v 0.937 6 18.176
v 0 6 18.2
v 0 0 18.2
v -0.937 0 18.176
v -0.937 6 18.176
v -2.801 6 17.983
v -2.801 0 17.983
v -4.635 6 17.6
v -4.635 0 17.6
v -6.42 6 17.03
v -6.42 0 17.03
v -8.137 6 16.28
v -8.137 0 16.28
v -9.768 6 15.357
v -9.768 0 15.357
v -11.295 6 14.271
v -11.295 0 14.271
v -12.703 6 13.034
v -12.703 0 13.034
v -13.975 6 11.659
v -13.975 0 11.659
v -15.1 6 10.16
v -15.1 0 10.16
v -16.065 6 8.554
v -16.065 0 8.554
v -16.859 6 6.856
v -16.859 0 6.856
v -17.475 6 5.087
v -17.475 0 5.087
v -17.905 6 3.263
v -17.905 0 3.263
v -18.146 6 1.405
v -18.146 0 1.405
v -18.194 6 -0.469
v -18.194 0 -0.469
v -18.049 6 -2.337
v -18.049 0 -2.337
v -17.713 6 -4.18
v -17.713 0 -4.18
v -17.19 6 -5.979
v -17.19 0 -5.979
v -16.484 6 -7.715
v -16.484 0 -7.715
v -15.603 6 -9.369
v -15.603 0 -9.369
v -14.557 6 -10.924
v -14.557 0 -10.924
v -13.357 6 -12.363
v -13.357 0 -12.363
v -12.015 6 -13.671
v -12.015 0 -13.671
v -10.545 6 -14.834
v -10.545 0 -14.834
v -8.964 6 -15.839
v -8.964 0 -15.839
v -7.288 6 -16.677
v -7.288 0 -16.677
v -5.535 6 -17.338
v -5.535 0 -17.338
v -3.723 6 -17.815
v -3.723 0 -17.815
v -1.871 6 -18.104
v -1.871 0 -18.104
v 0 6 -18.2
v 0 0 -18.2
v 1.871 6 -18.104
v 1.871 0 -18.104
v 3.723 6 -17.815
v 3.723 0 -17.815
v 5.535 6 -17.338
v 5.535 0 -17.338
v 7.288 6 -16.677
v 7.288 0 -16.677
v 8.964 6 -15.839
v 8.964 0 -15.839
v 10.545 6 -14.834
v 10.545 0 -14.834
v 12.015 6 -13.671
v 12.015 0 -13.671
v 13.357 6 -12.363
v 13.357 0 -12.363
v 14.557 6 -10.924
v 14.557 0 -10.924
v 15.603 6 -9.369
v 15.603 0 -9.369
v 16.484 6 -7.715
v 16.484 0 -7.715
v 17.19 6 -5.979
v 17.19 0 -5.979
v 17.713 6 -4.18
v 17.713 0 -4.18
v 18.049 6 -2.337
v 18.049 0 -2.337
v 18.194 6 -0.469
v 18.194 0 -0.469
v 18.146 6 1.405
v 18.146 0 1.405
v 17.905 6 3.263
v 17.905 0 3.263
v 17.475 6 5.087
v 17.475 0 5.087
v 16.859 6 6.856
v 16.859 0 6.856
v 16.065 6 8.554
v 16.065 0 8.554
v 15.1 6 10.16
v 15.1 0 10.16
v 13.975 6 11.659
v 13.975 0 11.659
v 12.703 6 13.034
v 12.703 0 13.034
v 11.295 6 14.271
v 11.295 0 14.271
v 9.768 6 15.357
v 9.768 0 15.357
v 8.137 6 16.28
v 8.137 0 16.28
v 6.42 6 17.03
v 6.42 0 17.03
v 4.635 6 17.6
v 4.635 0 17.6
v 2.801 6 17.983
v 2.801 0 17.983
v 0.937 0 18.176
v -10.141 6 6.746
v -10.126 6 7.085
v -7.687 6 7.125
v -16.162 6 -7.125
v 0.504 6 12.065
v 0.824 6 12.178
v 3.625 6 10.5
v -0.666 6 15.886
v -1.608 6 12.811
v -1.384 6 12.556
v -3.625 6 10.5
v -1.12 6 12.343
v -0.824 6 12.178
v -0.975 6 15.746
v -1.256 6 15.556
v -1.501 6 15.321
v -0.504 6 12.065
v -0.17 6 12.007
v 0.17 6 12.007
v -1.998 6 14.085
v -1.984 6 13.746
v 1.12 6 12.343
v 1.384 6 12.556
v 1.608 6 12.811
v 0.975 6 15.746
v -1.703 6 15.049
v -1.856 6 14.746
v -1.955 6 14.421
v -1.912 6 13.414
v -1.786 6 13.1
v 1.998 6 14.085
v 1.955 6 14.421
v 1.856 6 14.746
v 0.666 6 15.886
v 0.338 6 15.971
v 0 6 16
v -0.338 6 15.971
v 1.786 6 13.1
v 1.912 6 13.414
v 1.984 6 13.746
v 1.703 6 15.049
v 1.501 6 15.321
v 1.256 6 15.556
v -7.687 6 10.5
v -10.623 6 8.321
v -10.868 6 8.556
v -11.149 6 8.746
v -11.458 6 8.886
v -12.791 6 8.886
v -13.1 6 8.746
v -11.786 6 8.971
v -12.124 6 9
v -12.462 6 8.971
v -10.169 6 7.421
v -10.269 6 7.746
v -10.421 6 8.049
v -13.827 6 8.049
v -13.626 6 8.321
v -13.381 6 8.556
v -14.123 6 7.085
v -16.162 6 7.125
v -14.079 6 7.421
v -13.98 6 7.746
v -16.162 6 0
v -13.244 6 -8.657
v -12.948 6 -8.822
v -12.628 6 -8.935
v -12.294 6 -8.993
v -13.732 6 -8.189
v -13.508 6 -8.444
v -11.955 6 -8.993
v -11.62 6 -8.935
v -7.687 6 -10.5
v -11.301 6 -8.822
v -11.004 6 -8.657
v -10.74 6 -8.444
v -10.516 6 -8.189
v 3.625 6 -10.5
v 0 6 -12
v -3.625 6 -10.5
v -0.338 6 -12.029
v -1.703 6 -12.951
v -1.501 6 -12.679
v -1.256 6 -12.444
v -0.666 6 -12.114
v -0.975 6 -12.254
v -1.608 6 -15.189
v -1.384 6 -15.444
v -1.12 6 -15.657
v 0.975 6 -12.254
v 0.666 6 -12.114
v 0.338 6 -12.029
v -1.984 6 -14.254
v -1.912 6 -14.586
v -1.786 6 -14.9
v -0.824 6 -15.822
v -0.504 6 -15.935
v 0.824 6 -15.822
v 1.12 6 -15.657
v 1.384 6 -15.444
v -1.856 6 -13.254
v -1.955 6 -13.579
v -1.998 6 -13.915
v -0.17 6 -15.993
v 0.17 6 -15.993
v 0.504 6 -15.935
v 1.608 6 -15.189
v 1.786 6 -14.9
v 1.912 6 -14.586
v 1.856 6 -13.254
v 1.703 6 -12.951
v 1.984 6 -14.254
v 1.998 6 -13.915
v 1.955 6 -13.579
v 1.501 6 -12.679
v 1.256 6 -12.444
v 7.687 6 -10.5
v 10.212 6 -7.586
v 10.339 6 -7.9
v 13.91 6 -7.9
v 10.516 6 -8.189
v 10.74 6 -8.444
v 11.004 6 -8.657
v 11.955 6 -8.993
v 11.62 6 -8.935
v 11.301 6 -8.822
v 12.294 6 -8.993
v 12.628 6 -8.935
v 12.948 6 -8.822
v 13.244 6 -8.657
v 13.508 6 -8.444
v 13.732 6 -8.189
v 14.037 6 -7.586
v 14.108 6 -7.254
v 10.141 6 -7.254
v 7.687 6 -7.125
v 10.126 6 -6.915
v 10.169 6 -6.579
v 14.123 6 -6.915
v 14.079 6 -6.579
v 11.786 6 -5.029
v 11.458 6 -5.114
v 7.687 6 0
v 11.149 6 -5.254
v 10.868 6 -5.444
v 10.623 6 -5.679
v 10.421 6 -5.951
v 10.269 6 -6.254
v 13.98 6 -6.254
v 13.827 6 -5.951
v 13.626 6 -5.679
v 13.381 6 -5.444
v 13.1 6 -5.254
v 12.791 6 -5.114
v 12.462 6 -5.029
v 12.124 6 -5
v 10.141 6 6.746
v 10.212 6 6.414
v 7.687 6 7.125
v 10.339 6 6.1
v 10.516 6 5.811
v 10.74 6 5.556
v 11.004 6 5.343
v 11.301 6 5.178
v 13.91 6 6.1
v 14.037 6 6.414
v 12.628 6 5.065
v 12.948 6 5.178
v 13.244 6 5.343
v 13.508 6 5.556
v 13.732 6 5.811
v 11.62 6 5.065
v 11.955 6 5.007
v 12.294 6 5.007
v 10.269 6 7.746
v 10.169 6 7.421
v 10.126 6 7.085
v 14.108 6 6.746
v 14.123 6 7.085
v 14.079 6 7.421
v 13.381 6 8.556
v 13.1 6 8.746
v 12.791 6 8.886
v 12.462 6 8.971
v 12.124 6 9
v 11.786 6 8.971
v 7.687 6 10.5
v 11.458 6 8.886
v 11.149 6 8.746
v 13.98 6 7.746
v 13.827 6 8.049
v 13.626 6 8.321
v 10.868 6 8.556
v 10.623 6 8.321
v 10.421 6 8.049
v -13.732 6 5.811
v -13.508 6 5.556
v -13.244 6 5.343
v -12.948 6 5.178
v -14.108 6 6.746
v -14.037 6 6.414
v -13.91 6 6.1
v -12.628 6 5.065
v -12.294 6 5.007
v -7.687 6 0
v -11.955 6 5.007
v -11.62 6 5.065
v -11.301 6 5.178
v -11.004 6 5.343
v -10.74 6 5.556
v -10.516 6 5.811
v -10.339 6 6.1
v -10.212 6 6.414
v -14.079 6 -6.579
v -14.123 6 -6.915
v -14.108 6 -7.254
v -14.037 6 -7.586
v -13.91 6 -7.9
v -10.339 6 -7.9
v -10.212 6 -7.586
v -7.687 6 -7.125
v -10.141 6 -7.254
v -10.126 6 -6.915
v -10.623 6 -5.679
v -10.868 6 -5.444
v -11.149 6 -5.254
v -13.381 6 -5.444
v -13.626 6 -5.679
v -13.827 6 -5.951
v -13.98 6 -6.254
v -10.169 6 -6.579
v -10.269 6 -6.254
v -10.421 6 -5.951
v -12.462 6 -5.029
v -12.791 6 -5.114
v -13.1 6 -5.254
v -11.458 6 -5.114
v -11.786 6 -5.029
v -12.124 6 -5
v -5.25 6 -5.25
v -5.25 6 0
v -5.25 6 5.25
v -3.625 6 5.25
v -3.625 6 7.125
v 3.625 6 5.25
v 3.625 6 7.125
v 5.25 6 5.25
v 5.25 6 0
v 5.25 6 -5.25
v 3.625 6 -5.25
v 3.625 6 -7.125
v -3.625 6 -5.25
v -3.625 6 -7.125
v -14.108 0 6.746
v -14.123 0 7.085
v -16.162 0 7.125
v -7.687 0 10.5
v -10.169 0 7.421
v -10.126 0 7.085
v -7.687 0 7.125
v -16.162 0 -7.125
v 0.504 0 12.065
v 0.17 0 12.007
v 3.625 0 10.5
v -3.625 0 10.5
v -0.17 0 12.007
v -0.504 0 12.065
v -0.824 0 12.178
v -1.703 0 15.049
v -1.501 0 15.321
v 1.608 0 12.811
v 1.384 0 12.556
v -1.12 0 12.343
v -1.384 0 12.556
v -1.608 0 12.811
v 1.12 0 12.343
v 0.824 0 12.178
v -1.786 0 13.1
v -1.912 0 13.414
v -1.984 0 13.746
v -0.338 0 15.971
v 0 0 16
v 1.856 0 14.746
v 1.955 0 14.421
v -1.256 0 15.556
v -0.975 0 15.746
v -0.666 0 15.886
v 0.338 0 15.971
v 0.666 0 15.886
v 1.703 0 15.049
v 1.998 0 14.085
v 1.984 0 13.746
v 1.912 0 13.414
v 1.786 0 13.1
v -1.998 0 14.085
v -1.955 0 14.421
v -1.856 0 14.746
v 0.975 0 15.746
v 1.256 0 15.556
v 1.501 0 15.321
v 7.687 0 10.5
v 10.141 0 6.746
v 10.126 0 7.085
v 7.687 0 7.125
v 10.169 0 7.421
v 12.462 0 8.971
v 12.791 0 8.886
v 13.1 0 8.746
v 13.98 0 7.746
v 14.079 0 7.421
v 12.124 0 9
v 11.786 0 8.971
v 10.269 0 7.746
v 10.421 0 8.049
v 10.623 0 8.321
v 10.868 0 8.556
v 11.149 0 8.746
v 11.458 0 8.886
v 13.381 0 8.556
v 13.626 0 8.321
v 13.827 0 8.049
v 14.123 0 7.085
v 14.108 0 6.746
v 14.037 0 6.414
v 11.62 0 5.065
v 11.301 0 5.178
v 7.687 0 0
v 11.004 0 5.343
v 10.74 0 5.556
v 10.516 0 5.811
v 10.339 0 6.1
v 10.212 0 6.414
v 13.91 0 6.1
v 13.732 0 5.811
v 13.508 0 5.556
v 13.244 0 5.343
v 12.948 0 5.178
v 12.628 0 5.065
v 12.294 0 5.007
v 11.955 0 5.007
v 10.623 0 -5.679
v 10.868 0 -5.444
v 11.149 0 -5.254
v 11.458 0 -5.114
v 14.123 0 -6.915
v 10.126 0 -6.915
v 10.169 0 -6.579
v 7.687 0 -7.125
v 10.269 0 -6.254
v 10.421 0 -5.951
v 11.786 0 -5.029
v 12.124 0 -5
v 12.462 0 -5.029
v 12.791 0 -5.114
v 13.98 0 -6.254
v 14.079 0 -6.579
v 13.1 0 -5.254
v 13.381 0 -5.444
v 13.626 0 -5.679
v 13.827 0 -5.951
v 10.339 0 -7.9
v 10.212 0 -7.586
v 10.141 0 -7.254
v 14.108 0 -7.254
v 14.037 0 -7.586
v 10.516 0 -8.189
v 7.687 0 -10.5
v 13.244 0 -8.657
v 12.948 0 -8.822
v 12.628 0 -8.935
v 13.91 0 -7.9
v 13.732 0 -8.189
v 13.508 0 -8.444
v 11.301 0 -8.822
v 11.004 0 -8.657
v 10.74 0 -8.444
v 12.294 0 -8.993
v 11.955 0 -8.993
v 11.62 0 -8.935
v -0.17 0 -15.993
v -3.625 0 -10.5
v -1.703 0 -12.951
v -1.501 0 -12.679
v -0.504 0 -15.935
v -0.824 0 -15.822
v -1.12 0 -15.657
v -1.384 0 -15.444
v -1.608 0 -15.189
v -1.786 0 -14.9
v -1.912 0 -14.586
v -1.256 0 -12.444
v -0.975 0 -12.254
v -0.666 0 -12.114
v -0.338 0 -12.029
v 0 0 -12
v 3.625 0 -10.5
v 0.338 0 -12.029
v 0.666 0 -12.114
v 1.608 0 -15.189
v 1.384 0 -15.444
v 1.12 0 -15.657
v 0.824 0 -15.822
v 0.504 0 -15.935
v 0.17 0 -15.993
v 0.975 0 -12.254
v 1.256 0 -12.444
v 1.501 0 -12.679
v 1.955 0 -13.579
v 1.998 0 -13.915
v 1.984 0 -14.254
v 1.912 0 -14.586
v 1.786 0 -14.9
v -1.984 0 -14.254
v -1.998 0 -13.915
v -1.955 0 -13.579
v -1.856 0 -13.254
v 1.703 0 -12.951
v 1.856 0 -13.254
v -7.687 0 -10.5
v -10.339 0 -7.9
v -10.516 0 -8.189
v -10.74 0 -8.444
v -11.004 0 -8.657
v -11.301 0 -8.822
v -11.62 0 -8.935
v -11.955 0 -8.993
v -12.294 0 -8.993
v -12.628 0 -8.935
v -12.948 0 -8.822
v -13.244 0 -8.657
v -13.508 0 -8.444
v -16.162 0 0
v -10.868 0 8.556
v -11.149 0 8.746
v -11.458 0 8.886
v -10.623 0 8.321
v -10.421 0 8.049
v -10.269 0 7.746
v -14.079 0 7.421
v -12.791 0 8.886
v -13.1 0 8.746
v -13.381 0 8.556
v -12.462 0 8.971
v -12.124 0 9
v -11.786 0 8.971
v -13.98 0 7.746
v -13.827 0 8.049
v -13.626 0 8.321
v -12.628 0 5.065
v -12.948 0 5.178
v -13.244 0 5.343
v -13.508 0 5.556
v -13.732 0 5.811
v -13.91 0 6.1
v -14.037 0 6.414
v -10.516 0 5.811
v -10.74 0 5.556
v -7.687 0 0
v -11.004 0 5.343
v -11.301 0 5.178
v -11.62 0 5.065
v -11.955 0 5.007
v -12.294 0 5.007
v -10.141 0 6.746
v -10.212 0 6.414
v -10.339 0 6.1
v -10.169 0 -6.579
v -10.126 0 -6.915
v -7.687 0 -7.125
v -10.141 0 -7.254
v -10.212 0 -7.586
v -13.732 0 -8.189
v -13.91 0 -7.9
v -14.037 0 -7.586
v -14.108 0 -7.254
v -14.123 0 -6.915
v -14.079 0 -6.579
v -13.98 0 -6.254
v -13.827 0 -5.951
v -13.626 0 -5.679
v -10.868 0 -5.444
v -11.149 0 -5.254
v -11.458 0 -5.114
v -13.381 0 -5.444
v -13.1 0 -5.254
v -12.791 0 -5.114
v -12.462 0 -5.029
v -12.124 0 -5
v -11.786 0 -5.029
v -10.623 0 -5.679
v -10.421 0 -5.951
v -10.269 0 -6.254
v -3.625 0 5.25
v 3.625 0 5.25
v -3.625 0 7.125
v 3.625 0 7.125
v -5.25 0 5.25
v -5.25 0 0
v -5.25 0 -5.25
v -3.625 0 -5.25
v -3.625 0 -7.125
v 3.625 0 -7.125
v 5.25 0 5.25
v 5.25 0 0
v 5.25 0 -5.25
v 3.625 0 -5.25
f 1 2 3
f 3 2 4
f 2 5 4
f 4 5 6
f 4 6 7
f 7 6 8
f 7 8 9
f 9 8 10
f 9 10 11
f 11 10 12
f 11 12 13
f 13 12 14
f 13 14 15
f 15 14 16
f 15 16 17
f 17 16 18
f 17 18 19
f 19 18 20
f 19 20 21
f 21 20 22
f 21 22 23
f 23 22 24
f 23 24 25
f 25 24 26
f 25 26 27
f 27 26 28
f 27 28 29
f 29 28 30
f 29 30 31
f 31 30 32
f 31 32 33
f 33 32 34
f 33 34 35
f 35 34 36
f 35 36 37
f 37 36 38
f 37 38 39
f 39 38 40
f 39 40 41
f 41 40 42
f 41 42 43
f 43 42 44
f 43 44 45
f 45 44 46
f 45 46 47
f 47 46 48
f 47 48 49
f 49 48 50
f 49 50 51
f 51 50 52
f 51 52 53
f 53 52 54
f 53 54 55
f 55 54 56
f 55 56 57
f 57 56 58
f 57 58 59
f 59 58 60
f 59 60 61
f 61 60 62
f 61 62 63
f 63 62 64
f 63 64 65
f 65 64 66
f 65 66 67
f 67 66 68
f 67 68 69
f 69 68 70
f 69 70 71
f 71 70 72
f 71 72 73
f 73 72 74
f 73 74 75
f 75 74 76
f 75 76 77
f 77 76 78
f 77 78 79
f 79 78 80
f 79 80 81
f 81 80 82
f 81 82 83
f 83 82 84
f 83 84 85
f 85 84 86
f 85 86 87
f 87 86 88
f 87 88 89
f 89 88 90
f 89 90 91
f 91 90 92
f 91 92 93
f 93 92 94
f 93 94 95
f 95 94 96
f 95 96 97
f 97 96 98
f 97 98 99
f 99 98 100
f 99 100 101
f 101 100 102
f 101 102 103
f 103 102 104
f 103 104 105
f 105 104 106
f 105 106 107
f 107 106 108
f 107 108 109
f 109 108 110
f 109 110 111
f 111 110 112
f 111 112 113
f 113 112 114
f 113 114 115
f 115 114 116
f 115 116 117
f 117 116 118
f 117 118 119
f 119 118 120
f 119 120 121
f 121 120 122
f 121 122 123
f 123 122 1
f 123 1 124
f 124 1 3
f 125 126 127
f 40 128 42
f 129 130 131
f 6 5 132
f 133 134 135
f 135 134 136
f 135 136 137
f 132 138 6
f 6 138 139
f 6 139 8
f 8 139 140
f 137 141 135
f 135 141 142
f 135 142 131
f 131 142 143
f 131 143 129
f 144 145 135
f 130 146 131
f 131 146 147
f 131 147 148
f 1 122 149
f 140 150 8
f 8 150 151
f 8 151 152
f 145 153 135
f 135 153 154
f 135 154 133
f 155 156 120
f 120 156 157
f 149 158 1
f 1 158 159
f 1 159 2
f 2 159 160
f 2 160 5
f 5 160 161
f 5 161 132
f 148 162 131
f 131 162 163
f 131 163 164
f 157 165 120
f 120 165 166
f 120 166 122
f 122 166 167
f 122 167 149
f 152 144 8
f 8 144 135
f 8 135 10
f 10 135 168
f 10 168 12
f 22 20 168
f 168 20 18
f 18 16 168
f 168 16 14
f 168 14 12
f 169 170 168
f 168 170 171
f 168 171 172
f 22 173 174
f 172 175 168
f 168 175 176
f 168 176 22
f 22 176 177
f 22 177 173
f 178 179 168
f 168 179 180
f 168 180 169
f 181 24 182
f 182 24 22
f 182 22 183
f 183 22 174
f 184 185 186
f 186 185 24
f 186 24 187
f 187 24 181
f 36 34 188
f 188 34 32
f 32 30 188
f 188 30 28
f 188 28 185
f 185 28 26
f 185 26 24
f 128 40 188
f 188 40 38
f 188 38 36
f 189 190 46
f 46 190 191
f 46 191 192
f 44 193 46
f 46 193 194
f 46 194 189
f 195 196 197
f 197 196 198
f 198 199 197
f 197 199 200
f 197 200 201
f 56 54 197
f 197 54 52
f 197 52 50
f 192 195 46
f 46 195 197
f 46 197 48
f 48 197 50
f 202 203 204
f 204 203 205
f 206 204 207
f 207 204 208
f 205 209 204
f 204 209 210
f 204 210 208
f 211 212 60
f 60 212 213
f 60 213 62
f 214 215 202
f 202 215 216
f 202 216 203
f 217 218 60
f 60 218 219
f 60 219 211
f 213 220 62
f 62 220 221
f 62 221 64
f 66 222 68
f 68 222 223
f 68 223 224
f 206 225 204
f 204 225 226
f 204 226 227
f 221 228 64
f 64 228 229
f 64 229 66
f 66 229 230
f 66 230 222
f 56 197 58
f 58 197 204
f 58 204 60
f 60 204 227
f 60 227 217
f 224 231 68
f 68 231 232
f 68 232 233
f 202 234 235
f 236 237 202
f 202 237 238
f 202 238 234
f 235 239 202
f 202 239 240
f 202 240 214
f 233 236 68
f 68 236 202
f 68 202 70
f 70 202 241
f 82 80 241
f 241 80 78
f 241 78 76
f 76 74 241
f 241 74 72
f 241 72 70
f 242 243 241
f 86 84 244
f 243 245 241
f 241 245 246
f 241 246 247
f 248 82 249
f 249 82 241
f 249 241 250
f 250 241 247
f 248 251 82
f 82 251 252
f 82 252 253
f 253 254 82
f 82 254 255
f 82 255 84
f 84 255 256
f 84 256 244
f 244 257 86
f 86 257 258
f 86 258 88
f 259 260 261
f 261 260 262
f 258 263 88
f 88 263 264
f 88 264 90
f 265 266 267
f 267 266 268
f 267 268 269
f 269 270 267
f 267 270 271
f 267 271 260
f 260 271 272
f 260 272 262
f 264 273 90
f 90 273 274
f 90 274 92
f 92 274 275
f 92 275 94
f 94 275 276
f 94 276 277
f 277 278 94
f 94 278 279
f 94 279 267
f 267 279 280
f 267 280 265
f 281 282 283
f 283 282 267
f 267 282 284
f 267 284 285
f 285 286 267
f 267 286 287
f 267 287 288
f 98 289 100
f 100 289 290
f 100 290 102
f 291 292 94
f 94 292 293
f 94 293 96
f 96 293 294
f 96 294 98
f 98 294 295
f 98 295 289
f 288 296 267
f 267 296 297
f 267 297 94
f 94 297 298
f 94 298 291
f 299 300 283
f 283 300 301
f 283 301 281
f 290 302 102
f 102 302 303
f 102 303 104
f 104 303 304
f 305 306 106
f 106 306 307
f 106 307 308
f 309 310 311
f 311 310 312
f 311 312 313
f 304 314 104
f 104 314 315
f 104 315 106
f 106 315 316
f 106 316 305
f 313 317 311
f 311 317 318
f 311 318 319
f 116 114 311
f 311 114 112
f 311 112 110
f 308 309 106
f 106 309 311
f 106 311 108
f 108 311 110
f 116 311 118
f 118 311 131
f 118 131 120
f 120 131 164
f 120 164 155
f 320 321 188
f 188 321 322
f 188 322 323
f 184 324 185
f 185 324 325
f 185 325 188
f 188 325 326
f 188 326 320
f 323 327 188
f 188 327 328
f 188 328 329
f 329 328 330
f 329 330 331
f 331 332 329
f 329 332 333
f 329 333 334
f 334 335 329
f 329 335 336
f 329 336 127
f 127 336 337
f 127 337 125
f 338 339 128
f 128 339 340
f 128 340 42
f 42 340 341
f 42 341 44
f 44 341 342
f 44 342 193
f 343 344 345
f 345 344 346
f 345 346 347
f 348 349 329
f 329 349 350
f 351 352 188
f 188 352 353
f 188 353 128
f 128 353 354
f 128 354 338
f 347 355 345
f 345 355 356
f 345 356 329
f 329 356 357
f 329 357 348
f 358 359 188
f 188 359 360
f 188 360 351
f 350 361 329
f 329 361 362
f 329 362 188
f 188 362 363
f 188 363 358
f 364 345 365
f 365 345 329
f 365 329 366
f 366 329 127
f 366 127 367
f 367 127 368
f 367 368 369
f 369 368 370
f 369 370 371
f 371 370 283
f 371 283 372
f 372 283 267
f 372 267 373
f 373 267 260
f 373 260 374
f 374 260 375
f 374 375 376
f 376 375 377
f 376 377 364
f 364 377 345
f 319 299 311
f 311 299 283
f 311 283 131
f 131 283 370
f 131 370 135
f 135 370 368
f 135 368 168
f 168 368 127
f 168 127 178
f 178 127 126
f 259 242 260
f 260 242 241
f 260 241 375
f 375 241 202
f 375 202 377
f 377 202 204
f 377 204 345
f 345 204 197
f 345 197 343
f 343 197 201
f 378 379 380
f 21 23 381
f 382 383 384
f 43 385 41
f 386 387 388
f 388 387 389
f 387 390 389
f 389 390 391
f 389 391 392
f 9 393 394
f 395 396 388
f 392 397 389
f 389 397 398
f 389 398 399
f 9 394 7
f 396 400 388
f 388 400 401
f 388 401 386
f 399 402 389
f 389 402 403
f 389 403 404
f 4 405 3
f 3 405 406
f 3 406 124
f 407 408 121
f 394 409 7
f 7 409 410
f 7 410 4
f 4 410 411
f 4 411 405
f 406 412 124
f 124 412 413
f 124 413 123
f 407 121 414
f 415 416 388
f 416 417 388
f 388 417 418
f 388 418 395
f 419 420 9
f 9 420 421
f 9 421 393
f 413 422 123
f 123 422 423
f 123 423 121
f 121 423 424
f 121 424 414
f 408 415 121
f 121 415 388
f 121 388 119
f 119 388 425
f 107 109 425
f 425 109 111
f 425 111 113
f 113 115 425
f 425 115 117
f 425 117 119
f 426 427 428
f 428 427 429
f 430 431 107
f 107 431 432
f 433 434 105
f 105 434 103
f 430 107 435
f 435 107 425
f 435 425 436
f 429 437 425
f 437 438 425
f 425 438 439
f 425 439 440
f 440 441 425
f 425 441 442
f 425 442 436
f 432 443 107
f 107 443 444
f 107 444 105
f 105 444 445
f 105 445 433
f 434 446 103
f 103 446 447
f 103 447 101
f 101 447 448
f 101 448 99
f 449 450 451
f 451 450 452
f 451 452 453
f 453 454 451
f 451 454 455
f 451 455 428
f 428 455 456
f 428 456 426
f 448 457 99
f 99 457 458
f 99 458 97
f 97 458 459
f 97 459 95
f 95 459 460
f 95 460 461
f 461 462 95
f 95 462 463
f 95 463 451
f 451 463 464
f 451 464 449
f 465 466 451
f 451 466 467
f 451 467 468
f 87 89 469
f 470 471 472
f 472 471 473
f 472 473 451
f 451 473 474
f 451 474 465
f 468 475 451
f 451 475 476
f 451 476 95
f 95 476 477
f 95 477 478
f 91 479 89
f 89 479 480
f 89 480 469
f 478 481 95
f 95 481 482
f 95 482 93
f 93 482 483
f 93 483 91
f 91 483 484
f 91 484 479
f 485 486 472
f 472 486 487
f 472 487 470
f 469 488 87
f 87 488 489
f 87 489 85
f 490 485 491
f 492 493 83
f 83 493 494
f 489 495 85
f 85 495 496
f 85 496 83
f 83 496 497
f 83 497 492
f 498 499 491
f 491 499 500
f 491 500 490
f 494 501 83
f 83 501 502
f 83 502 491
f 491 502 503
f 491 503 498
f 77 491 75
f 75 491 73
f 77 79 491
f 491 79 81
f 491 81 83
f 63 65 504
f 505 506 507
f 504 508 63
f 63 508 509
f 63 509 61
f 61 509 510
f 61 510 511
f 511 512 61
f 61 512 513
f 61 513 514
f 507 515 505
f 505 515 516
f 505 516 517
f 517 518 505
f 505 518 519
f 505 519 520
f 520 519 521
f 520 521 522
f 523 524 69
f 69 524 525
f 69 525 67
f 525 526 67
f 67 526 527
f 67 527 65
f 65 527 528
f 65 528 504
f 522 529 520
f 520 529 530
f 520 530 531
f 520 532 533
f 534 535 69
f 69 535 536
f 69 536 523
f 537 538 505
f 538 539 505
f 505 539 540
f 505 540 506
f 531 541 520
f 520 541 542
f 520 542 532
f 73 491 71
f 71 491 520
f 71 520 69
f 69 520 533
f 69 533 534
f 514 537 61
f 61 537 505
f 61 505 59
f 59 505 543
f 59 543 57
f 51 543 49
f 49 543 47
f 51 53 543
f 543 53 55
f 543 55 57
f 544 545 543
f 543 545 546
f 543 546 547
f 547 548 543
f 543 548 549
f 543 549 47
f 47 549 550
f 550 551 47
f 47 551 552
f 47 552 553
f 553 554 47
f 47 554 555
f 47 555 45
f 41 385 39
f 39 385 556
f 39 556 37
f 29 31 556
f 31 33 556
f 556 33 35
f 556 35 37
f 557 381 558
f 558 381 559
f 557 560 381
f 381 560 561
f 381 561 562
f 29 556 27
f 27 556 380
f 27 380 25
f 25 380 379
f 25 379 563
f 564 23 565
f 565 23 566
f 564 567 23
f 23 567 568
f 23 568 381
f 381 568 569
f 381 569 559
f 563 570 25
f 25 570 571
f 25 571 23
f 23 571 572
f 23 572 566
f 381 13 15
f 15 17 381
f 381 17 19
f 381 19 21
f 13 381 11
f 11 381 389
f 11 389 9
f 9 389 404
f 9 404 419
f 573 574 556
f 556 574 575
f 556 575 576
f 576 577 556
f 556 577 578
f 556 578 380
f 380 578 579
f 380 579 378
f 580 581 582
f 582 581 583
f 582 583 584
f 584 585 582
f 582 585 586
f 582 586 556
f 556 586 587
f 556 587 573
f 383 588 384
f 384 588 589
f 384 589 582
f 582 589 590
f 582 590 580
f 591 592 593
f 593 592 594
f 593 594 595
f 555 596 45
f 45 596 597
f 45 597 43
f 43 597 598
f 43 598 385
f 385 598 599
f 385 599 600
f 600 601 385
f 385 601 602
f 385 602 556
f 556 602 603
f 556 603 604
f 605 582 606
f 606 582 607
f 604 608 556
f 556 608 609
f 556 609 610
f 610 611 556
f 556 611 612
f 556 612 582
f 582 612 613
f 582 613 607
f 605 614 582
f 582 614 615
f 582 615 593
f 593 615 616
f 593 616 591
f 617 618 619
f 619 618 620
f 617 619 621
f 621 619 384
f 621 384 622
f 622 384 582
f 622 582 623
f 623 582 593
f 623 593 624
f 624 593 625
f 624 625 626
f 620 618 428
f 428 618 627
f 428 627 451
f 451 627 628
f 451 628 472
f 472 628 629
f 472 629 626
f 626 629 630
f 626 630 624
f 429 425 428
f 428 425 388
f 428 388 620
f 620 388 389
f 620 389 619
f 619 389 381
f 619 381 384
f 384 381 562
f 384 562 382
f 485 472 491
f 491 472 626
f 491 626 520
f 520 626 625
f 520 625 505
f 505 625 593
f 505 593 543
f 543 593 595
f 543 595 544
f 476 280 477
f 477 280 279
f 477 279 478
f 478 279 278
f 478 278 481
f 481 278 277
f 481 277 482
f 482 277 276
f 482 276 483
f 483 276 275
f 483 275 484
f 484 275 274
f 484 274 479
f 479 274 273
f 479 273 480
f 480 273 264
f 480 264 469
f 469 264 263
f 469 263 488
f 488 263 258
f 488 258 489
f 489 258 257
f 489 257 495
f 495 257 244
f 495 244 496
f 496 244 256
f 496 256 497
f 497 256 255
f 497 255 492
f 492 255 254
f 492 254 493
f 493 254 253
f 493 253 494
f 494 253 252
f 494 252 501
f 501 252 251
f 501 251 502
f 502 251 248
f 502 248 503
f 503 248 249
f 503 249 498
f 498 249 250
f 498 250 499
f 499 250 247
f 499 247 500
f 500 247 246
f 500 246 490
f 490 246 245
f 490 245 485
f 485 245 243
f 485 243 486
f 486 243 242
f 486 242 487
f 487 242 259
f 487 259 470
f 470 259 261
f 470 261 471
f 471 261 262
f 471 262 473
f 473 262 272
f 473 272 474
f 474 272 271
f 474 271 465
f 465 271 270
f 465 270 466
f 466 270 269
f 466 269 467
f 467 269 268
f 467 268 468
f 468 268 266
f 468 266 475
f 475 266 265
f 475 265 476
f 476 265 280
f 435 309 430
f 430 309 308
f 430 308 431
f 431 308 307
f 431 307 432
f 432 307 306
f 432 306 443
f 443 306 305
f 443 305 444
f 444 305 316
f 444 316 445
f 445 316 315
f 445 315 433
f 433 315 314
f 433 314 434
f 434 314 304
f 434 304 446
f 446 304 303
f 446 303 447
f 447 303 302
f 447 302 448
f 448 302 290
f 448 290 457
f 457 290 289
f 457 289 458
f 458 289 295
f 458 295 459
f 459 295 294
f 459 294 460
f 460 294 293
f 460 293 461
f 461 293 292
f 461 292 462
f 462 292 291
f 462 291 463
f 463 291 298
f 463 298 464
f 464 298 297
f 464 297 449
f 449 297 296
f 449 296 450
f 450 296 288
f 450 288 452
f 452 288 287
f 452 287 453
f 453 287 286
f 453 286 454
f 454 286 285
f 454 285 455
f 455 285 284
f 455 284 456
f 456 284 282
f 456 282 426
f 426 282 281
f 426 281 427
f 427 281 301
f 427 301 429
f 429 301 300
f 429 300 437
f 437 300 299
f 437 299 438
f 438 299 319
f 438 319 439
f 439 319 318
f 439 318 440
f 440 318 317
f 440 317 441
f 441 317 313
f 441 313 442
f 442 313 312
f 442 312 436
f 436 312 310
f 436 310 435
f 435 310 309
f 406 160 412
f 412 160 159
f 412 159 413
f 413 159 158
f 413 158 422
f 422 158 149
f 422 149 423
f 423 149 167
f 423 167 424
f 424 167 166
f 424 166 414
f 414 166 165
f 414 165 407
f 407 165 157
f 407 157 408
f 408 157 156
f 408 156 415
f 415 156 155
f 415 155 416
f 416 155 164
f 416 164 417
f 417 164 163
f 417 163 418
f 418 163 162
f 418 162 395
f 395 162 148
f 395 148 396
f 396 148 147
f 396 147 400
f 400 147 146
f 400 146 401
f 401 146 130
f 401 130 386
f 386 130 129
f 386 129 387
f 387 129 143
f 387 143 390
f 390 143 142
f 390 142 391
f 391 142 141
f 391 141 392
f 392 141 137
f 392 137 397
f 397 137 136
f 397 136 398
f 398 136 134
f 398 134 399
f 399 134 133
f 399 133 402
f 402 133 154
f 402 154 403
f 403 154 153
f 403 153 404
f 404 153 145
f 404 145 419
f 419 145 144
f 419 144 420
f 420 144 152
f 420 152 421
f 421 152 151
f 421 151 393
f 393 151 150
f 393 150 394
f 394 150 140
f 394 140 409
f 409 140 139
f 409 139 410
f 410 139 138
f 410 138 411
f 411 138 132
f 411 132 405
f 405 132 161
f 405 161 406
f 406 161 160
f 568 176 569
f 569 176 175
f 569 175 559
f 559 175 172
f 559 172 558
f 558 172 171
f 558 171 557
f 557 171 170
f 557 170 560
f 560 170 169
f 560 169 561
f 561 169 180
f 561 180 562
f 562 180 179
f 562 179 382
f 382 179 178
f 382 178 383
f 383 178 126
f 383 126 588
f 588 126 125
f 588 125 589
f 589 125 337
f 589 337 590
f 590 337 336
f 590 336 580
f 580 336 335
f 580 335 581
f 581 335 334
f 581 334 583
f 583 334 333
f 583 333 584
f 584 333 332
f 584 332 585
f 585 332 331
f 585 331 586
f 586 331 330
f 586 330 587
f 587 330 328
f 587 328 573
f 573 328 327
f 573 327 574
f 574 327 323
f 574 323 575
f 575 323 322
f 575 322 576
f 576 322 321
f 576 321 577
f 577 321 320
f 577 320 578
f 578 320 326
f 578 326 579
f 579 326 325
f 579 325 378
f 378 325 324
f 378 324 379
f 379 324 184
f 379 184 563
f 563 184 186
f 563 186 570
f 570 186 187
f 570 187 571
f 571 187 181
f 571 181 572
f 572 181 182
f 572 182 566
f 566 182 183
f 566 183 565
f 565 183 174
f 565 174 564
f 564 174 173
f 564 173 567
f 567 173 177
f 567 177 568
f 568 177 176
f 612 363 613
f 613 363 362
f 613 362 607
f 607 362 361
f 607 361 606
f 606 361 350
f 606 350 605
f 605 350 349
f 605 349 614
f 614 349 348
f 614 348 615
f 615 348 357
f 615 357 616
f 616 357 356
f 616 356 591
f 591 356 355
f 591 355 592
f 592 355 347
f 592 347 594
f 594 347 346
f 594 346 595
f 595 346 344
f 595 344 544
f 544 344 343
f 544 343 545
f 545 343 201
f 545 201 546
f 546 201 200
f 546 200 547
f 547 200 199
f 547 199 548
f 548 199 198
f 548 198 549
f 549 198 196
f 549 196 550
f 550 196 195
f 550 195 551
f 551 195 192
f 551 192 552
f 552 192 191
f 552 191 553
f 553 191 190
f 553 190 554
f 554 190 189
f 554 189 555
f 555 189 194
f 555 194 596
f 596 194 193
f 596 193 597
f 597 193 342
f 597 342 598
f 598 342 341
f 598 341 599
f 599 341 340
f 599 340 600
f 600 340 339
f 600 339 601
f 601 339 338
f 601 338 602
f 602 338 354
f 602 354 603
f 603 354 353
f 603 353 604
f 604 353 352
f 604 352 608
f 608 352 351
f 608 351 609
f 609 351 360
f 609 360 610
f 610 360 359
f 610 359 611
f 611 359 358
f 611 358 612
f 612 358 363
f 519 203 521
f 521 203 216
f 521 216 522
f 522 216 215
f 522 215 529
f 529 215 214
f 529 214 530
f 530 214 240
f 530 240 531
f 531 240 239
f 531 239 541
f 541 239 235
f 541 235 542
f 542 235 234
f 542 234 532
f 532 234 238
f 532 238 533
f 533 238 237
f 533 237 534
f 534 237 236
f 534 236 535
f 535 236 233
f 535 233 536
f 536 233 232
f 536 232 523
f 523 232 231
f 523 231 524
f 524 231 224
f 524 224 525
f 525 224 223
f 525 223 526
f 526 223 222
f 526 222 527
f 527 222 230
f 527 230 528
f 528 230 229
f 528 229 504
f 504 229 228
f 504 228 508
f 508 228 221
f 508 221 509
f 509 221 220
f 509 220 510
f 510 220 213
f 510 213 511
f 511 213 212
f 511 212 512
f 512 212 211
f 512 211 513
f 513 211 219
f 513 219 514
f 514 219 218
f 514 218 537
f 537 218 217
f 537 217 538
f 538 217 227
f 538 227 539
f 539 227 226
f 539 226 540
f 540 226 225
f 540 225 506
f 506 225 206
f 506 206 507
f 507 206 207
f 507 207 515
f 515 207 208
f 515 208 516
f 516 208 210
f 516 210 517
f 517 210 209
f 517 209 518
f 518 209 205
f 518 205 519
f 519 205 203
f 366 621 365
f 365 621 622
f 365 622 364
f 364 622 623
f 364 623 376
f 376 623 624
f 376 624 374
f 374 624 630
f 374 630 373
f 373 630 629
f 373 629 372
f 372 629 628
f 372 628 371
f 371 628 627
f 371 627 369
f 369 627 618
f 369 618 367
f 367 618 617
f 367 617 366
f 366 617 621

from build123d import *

# Parameters (mm, degrees)
SKETCH1_R           = 18.2
BOSS_EXTRUDE1_DEPTH = 6
SKETCH2_R           = 2
CUT_EXTRUDE1_DEPTH  = 6
SKETCH3_W           = 10.5
SKETCH3_H           = 10.5
CUT_EXTRUDE2_DEPTH  = 6


with BuildPart() as part:
    # Sketch1 → Boss-Extrude1 (new body)
    with BuildSketch(Plane(origin=(0, 0, 0), x_dir=(1, 0, 0), z_dir=(0, 1, 0))):
        Circle(SKETCH1_R)
    extrude(amount=BOSS_EXTRUDE1_DEPTH)

    # Sketch2 → Cut-Extrude1 (cut)
    with BuildSketch(Plane(origin=(0, 6, 0), x_dir=(1, 0, 0), z_dir=(0, 1, 0))):
        with Locations((0, 14)):
            Circle(SKETCH2_R)
        with Locations((12.124355653, 7)):
            Circle(SKETCH2_R)
        with Locations((12.124355653, -7)):
            Circle(SKETCH2_R)
        with Locations((0, -14)):
            Circle(SKETCH2_R)
        with Locations((-12.124355653, -7)):
            Circle(SKETCH2_R)
        with Locations((-12.124355653, 7)):
            Circle(SKETCH2_R)
    extrude(amount=-CUT_EXTRUDE1_DEPTH, mode=Mode.SUBTRACT)

    # Sketch3 → Cut-Extrude2 (cut)
    with BuildSketch(Plane(origin=(0, 6, 0), x_dir=(1, 0, 0), z_dir=(0, 1, 0))):
        Rectangle(SKETCH3_W, SKETCH3_H)
    extrude(amount=-CUT_EXTRUDE2_DEPTH, mode=Mode.SUBTRACT)


solid = part.part
